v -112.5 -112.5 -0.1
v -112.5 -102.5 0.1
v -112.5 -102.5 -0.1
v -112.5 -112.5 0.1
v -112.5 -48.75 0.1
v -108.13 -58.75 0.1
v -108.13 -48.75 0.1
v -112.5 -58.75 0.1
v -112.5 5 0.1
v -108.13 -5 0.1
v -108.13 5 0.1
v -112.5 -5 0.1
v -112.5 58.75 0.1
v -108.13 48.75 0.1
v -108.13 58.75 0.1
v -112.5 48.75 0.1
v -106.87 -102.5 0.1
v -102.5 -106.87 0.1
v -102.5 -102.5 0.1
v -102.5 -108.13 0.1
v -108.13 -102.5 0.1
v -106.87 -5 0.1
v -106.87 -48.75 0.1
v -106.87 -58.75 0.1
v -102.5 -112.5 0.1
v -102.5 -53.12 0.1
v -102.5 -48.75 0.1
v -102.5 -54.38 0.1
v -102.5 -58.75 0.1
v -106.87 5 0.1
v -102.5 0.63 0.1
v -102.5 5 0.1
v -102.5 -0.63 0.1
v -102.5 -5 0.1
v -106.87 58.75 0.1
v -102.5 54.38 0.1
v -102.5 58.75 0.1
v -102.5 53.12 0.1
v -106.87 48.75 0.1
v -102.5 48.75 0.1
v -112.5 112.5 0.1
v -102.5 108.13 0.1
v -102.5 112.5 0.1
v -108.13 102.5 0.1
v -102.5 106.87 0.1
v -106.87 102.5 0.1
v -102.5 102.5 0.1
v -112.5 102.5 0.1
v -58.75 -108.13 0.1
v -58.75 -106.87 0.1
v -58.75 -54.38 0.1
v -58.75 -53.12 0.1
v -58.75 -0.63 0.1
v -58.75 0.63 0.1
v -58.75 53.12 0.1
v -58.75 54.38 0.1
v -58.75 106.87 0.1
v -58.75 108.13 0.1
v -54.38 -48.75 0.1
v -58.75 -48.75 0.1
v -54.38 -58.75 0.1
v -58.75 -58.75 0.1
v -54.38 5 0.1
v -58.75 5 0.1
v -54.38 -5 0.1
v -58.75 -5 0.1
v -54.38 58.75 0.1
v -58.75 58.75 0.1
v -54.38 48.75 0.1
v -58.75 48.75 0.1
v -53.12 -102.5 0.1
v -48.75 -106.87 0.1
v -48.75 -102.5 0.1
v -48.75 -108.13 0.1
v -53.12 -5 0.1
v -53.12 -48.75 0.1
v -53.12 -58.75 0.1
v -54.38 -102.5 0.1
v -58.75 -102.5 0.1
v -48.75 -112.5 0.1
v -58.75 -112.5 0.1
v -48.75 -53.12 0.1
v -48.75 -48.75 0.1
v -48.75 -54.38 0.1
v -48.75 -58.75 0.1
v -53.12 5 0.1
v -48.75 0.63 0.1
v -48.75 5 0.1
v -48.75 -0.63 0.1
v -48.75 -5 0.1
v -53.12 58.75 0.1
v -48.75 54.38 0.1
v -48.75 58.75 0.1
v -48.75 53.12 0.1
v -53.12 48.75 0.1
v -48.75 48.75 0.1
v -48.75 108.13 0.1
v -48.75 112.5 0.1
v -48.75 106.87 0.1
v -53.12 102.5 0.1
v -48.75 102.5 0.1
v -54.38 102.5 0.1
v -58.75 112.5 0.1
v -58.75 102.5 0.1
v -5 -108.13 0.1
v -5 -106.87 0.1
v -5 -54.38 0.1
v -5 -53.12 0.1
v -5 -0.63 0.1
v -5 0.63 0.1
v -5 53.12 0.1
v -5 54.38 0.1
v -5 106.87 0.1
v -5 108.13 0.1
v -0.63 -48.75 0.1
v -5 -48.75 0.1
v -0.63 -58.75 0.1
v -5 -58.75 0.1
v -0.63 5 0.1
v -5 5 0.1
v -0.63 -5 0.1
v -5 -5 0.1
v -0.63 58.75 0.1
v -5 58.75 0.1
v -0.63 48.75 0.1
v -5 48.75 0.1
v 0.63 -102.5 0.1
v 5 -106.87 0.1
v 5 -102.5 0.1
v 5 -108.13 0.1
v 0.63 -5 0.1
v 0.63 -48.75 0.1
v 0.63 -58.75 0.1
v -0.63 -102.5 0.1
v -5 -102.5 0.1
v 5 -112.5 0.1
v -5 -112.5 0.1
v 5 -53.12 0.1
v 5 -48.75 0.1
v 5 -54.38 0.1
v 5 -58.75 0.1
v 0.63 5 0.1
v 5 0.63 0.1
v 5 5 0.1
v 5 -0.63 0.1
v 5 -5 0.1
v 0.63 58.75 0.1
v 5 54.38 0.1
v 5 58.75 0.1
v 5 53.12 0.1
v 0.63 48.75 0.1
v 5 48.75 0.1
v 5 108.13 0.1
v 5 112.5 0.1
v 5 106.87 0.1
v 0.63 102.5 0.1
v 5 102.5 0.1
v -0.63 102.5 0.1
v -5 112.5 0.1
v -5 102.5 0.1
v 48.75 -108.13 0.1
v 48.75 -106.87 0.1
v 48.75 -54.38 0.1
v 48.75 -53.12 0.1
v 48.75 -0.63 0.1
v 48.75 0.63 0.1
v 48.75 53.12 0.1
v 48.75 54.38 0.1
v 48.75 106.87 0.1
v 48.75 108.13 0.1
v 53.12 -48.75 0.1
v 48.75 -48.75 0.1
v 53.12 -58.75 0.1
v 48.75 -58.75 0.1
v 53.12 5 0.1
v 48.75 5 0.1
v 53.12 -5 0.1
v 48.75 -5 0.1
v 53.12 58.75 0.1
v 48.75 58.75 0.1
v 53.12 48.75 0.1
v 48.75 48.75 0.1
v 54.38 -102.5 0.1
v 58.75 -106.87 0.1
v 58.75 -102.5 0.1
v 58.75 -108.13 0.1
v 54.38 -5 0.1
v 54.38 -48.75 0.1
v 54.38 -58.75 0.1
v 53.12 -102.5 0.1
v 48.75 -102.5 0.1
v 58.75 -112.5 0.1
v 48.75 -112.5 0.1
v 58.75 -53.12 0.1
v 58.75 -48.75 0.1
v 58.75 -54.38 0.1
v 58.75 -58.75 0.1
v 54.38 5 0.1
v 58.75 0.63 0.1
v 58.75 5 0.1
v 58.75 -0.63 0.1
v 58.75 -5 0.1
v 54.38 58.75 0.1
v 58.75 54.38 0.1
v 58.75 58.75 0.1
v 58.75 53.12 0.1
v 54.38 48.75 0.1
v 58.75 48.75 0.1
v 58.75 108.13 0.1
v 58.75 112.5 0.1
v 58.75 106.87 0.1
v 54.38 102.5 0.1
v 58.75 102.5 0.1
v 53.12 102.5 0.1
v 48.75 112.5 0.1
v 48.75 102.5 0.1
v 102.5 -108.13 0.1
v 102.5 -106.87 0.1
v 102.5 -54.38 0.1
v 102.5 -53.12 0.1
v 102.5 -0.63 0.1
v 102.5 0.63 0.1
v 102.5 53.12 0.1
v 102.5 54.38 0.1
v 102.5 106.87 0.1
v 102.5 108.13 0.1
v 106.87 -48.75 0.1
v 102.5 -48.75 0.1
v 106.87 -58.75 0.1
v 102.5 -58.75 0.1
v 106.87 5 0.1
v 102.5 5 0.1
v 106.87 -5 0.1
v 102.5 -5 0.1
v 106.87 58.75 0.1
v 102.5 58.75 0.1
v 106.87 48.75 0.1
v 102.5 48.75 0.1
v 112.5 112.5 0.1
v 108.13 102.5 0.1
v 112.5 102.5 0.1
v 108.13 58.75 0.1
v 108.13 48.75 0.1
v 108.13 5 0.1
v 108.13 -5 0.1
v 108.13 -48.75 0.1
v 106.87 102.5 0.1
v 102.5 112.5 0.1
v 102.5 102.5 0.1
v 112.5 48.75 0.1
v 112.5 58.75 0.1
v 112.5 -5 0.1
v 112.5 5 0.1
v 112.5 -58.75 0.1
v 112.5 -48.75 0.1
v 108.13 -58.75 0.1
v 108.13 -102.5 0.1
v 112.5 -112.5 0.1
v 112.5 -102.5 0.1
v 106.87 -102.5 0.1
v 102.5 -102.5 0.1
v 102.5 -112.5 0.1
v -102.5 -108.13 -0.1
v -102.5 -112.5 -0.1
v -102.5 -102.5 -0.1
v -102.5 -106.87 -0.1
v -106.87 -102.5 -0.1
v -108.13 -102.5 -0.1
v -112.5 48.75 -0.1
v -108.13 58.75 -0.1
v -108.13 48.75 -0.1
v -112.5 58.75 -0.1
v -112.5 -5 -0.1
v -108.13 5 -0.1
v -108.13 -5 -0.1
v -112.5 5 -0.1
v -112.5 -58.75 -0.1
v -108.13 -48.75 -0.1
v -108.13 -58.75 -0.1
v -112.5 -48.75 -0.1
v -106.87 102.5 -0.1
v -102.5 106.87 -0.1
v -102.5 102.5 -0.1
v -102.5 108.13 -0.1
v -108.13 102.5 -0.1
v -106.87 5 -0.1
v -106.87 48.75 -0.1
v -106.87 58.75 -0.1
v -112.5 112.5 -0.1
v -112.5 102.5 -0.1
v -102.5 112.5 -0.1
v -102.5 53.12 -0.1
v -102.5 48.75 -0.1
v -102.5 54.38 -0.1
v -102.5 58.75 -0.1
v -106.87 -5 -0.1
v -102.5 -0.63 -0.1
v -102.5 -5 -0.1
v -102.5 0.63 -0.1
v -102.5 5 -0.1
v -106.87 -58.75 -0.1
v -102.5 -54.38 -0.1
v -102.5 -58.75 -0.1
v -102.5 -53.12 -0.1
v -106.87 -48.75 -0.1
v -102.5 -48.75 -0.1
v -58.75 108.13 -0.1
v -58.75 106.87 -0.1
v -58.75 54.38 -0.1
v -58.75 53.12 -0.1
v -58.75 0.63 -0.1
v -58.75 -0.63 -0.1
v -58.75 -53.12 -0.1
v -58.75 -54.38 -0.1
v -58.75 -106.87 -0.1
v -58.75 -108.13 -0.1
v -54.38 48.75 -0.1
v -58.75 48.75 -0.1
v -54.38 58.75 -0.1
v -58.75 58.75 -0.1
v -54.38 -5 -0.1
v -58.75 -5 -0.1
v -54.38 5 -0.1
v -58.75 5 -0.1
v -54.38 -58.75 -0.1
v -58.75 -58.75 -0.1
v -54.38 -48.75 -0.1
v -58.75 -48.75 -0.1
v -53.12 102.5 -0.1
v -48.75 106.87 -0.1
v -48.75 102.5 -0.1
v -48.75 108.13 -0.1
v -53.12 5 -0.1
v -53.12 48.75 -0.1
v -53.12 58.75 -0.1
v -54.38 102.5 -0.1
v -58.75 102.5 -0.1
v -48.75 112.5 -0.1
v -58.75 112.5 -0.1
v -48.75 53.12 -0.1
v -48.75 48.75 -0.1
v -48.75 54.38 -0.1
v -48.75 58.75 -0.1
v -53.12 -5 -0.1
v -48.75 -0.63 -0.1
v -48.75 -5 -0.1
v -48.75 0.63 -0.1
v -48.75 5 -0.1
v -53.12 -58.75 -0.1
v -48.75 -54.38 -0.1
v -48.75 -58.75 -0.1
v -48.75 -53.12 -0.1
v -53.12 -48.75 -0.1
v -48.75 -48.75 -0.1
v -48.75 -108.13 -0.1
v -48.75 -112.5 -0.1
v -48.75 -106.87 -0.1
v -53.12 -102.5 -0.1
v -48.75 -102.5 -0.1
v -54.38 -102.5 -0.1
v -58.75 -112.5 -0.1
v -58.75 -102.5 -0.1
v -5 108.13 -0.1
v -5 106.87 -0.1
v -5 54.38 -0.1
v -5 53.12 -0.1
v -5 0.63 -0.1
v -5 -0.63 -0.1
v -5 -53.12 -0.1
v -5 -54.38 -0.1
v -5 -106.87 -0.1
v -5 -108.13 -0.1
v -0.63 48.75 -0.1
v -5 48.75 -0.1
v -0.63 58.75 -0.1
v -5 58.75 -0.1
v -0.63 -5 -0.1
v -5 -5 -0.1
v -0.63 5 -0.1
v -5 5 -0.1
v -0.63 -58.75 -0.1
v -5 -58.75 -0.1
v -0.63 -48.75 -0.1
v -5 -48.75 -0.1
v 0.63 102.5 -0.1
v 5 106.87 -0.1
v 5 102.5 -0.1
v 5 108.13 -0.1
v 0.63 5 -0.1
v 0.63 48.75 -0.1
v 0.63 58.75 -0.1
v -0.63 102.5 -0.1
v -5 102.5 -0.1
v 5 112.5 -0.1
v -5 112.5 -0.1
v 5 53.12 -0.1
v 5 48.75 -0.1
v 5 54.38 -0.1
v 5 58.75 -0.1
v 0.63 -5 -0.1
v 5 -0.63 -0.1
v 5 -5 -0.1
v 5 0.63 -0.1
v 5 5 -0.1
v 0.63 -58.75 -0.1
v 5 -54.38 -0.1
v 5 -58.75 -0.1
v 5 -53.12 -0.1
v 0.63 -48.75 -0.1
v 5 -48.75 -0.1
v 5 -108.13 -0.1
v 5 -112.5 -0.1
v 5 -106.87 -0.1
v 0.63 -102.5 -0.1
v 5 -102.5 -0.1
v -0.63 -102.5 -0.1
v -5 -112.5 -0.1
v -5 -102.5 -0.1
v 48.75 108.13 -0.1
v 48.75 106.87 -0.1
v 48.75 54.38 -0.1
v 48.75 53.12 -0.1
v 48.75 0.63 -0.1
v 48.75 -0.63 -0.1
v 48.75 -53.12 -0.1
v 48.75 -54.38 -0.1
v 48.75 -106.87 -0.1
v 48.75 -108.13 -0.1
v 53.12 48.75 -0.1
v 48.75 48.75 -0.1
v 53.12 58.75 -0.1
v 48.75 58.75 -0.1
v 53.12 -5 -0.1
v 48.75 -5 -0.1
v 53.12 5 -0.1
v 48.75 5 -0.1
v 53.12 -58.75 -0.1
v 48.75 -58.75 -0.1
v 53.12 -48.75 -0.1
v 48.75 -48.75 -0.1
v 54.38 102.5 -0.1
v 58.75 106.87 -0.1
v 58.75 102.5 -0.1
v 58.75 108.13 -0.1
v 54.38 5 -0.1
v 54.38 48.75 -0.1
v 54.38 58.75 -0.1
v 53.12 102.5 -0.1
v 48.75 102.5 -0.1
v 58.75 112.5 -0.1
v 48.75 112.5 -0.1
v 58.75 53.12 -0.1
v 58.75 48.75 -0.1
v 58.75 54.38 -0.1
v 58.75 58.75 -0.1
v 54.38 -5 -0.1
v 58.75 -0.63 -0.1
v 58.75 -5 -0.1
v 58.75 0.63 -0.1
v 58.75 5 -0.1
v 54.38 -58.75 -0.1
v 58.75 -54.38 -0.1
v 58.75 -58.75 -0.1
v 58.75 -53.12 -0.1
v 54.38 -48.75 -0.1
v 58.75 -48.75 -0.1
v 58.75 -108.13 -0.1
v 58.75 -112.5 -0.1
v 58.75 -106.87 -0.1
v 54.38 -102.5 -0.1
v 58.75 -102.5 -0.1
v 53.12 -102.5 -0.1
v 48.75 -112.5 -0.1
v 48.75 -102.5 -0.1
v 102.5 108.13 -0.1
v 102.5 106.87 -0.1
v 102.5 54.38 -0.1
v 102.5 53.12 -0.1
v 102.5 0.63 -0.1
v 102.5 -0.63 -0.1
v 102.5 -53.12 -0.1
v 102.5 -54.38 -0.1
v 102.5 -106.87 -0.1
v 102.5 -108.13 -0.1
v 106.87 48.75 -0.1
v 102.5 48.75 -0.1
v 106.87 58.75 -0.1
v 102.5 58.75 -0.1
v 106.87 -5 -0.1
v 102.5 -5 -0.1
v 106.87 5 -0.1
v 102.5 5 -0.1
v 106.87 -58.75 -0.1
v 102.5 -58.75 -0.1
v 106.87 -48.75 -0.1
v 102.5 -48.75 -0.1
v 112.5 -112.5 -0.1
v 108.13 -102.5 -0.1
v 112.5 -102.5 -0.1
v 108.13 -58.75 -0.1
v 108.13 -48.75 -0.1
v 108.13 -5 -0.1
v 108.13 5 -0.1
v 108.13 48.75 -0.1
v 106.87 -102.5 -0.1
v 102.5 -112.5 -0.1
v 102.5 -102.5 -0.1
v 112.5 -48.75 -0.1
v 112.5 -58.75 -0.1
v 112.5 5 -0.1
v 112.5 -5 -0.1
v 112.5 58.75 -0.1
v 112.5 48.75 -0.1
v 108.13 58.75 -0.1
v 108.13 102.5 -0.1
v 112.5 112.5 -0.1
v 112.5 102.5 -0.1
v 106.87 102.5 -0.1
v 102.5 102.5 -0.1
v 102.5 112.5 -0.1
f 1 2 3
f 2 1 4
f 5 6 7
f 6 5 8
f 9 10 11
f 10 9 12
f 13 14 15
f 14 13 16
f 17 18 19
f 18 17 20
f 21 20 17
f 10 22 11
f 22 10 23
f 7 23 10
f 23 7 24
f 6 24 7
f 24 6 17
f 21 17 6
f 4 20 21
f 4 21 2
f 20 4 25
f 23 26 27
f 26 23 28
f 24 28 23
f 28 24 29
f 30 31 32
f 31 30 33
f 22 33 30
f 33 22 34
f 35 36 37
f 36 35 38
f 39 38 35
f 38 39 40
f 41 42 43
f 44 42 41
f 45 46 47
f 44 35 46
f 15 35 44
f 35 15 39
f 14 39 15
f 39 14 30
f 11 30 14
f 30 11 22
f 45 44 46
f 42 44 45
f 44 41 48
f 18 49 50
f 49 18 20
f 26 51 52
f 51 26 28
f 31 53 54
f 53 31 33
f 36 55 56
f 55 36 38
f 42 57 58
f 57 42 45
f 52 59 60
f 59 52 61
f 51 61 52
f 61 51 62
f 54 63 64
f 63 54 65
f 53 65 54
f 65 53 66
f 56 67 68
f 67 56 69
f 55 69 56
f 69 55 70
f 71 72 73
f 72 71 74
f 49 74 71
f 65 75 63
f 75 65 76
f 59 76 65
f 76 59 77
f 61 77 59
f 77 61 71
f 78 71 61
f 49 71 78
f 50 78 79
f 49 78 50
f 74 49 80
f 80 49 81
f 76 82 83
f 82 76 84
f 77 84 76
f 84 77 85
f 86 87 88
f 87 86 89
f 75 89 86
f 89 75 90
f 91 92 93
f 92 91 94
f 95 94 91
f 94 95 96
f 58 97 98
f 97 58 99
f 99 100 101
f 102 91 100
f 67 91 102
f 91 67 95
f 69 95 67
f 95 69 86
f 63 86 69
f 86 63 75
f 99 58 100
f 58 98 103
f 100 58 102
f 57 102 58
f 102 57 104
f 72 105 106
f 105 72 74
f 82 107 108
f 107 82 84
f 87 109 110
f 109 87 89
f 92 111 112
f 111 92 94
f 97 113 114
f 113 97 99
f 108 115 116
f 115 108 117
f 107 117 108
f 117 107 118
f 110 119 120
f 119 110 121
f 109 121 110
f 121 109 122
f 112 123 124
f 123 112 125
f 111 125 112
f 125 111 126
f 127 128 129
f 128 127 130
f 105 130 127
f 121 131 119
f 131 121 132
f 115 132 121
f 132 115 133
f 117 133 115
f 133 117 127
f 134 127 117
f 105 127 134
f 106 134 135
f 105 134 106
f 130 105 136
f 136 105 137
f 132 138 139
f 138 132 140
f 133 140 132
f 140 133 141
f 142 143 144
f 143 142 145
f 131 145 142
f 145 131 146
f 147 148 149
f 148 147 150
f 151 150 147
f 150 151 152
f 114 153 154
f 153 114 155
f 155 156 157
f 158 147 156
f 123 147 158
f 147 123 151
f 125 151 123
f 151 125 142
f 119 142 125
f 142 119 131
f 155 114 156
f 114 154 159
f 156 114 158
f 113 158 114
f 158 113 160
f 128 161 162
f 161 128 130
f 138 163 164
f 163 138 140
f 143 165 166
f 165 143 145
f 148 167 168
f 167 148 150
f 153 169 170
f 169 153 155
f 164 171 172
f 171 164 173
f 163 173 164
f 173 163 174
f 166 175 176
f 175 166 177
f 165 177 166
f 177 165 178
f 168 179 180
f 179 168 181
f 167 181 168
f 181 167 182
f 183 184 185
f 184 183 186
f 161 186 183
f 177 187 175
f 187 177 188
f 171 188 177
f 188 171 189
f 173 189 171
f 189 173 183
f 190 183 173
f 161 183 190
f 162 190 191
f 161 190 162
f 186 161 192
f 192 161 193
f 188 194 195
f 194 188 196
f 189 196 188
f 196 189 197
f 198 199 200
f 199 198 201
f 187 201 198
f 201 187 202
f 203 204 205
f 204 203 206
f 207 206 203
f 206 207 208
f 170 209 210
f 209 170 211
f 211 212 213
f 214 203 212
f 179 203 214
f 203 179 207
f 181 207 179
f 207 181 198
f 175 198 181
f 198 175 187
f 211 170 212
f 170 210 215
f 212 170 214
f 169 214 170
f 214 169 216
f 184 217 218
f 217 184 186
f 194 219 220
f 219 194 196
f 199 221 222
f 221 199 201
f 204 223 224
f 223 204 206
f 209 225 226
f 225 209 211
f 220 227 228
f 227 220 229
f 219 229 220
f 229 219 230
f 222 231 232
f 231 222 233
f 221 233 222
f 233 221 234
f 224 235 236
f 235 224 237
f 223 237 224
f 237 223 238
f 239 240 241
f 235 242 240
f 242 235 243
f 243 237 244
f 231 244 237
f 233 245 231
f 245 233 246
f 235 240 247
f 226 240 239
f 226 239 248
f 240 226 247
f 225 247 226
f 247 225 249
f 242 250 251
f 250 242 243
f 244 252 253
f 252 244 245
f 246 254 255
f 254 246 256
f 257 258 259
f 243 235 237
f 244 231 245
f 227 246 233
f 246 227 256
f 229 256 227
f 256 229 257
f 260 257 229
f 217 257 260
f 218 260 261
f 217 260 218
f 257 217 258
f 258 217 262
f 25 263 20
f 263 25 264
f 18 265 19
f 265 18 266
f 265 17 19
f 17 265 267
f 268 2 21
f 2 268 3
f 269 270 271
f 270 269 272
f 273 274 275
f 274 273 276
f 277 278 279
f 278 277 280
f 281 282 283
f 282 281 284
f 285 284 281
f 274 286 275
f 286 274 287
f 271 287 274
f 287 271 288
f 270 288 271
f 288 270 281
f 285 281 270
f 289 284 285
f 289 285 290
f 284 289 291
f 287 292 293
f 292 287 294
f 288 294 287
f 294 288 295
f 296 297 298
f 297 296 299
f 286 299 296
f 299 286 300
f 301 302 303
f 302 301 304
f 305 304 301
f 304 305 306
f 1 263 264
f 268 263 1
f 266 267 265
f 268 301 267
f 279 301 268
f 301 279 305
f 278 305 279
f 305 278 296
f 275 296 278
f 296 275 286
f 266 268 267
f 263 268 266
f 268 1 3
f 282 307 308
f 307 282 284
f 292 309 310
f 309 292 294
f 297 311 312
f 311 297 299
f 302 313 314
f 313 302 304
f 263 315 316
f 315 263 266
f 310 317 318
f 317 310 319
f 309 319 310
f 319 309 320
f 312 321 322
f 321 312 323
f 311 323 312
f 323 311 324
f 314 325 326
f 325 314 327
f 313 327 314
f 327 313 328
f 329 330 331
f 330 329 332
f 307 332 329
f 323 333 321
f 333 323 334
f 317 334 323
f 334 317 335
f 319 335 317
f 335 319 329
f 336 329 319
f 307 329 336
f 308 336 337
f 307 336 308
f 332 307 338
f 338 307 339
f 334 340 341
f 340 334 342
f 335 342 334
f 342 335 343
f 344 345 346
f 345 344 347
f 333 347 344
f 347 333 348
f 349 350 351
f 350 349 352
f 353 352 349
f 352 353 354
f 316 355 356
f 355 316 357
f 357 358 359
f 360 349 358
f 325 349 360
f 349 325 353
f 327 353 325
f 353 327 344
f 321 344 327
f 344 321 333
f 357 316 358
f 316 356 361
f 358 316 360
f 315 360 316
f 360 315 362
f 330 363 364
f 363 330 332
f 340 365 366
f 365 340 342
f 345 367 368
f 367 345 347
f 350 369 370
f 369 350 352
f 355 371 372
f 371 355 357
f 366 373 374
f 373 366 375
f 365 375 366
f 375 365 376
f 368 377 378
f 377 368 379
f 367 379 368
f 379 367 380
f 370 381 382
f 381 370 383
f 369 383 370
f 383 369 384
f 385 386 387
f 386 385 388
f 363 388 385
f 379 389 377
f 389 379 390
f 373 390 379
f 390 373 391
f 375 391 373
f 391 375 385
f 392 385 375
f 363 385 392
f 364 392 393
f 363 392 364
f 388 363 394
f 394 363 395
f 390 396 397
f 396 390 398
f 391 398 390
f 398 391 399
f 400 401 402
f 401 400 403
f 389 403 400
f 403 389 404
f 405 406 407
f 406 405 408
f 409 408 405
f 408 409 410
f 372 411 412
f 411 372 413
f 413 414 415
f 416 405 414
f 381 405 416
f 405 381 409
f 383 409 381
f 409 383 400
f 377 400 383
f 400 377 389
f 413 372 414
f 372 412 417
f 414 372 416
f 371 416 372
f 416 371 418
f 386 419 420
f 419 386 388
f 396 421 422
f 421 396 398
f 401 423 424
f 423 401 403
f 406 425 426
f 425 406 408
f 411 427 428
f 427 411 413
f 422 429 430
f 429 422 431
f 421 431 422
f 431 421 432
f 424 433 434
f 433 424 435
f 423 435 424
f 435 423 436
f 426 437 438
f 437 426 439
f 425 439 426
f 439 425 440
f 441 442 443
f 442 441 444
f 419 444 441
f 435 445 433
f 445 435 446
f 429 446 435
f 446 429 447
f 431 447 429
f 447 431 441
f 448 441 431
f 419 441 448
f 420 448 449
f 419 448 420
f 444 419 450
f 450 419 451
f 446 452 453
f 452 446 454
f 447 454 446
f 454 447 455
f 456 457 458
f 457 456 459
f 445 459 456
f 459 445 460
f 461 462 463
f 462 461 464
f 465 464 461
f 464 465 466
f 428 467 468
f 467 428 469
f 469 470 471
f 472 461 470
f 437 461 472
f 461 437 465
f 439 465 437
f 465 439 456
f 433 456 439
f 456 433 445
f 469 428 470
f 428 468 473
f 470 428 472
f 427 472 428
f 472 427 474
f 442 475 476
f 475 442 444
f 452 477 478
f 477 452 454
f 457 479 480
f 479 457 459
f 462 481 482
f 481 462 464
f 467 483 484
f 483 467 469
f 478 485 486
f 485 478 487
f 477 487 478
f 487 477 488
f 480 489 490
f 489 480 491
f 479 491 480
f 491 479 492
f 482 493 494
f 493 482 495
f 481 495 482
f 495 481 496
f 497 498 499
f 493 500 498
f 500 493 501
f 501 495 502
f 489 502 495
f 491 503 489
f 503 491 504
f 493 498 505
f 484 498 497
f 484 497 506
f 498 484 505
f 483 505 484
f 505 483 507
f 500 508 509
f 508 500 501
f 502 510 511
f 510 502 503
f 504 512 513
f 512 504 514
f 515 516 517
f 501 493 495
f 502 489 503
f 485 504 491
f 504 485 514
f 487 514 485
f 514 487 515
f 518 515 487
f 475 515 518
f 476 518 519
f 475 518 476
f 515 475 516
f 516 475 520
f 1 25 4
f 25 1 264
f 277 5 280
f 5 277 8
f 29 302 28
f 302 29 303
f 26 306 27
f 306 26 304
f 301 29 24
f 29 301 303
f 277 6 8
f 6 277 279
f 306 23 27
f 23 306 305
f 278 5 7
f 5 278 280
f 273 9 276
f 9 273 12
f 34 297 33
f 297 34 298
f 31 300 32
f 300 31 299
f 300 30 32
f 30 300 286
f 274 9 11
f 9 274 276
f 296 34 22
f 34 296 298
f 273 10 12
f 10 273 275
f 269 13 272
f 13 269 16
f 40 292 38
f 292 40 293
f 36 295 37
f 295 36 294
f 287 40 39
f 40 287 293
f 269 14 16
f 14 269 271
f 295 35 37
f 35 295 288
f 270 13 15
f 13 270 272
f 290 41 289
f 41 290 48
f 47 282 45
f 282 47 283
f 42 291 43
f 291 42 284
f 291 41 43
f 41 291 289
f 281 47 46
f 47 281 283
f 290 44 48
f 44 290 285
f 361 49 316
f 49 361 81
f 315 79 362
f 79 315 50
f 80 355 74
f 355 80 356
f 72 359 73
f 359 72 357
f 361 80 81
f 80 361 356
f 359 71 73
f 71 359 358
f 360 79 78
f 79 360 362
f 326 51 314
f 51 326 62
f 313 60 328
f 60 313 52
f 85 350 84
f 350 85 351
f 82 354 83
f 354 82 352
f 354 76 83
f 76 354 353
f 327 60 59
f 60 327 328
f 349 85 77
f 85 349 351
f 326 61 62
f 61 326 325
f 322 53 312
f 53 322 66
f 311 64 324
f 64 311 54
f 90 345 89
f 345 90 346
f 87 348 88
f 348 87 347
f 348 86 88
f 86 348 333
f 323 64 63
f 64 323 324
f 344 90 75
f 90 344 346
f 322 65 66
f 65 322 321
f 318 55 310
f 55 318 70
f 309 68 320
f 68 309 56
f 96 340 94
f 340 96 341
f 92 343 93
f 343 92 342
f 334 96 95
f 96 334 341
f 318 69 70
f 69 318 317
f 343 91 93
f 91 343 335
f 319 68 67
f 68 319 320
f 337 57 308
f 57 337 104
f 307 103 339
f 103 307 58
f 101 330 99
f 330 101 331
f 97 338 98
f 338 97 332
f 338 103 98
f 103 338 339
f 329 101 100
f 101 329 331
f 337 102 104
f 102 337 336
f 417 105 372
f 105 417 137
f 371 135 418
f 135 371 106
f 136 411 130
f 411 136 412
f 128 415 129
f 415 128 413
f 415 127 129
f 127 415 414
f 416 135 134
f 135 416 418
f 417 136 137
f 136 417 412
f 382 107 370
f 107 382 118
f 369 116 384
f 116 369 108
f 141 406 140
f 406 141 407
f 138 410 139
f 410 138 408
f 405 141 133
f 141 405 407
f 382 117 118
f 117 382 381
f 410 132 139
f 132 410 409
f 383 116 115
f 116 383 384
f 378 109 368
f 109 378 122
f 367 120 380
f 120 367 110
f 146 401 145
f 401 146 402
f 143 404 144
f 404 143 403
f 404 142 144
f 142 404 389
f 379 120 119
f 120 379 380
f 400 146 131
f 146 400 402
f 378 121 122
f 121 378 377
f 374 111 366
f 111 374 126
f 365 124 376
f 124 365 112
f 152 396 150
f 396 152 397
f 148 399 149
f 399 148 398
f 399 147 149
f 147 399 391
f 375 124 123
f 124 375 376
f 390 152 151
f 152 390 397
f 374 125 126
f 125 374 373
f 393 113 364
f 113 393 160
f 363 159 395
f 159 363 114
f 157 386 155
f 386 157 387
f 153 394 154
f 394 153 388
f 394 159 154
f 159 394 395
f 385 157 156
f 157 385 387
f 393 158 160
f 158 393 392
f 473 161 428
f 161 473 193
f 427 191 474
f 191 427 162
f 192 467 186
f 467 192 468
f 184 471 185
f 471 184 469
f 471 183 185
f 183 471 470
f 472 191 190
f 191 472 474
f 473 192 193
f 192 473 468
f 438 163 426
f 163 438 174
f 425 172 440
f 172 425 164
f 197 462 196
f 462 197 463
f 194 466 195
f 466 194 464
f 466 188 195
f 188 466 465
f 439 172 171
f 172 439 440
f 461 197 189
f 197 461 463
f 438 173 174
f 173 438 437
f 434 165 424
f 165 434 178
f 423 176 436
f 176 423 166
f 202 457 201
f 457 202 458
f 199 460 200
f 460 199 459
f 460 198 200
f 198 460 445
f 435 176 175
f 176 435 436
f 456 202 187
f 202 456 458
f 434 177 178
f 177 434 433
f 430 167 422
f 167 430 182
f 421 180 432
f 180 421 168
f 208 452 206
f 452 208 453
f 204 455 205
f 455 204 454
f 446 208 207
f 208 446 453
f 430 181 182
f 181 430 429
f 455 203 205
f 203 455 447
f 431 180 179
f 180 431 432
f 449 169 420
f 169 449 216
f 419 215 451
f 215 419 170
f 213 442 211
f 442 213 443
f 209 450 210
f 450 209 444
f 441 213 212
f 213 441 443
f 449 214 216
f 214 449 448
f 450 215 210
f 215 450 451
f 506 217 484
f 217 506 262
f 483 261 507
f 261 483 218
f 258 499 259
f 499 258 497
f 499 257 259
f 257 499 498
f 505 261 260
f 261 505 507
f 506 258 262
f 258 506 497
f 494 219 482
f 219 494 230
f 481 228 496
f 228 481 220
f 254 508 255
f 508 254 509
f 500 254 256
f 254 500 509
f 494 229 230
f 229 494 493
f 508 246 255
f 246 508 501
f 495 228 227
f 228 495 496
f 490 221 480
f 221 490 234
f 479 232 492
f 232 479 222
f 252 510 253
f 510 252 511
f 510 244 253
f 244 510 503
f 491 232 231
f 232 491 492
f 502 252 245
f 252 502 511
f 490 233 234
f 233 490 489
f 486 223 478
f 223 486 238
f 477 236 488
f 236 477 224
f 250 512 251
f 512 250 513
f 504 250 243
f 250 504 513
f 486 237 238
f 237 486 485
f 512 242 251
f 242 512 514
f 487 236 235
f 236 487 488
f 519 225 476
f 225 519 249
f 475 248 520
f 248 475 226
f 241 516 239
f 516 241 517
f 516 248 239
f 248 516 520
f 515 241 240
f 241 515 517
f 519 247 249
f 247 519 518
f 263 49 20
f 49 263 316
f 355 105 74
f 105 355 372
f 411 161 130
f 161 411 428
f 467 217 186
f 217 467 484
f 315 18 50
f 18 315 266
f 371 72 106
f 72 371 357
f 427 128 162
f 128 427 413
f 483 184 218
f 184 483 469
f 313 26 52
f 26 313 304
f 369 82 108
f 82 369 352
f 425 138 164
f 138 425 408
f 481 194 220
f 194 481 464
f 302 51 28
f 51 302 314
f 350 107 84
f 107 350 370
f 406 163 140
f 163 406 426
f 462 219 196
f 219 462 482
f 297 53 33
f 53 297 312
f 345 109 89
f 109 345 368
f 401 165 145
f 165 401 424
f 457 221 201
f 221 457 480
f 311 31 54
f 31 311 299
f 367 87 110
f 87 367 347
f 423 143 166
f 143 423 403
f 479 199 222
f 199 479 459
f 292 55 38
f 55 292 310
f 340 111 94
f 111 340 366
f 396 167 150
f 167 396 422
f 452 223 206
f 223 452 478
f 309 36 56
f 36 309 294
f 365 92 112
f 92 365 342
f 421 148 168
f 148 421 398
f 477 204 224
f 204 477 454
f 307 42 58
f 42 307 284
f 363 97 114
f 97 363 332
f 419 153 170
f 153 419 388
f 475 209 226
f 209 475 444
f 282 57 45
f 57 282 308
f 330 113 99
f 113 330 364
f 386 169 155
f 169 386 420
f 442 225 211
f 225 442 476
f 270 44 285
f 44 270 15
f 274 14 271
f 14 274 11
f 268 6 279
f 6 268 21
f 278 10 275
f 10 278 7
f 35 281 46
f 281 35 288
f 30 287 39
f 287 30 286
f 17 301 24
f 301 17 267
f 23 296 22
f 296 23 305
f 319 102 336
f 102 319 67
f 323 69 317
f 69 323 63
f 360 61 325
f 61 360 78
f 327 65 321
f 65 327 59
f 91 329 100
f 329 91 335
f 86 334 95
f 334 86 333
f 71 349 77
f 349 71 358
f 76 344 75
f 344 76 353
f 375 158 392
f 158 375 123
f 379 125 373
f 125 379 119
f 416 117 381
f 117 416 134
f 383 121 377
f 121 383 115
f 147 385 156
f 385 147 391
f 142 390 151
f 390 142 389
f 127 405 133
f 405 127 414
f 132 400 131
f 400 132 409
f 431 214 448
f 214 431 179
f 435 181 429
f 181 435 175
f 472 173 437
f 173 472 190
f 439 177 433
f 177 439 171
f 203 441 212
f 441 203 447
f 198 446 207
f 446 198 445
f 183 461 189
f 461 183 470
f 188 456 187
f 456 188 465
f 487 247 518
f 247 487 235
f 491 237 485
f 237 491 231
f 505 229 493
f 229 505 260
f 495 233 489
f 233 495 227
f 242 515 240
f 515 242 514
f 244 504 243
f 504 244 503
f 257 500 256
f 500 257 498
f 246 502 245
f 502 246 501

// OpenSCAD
include <3d-printer-testing-suite.scad>

/* [Hidden] */
color_scheme = ["lightblue"];
test_type = "bed_level";
